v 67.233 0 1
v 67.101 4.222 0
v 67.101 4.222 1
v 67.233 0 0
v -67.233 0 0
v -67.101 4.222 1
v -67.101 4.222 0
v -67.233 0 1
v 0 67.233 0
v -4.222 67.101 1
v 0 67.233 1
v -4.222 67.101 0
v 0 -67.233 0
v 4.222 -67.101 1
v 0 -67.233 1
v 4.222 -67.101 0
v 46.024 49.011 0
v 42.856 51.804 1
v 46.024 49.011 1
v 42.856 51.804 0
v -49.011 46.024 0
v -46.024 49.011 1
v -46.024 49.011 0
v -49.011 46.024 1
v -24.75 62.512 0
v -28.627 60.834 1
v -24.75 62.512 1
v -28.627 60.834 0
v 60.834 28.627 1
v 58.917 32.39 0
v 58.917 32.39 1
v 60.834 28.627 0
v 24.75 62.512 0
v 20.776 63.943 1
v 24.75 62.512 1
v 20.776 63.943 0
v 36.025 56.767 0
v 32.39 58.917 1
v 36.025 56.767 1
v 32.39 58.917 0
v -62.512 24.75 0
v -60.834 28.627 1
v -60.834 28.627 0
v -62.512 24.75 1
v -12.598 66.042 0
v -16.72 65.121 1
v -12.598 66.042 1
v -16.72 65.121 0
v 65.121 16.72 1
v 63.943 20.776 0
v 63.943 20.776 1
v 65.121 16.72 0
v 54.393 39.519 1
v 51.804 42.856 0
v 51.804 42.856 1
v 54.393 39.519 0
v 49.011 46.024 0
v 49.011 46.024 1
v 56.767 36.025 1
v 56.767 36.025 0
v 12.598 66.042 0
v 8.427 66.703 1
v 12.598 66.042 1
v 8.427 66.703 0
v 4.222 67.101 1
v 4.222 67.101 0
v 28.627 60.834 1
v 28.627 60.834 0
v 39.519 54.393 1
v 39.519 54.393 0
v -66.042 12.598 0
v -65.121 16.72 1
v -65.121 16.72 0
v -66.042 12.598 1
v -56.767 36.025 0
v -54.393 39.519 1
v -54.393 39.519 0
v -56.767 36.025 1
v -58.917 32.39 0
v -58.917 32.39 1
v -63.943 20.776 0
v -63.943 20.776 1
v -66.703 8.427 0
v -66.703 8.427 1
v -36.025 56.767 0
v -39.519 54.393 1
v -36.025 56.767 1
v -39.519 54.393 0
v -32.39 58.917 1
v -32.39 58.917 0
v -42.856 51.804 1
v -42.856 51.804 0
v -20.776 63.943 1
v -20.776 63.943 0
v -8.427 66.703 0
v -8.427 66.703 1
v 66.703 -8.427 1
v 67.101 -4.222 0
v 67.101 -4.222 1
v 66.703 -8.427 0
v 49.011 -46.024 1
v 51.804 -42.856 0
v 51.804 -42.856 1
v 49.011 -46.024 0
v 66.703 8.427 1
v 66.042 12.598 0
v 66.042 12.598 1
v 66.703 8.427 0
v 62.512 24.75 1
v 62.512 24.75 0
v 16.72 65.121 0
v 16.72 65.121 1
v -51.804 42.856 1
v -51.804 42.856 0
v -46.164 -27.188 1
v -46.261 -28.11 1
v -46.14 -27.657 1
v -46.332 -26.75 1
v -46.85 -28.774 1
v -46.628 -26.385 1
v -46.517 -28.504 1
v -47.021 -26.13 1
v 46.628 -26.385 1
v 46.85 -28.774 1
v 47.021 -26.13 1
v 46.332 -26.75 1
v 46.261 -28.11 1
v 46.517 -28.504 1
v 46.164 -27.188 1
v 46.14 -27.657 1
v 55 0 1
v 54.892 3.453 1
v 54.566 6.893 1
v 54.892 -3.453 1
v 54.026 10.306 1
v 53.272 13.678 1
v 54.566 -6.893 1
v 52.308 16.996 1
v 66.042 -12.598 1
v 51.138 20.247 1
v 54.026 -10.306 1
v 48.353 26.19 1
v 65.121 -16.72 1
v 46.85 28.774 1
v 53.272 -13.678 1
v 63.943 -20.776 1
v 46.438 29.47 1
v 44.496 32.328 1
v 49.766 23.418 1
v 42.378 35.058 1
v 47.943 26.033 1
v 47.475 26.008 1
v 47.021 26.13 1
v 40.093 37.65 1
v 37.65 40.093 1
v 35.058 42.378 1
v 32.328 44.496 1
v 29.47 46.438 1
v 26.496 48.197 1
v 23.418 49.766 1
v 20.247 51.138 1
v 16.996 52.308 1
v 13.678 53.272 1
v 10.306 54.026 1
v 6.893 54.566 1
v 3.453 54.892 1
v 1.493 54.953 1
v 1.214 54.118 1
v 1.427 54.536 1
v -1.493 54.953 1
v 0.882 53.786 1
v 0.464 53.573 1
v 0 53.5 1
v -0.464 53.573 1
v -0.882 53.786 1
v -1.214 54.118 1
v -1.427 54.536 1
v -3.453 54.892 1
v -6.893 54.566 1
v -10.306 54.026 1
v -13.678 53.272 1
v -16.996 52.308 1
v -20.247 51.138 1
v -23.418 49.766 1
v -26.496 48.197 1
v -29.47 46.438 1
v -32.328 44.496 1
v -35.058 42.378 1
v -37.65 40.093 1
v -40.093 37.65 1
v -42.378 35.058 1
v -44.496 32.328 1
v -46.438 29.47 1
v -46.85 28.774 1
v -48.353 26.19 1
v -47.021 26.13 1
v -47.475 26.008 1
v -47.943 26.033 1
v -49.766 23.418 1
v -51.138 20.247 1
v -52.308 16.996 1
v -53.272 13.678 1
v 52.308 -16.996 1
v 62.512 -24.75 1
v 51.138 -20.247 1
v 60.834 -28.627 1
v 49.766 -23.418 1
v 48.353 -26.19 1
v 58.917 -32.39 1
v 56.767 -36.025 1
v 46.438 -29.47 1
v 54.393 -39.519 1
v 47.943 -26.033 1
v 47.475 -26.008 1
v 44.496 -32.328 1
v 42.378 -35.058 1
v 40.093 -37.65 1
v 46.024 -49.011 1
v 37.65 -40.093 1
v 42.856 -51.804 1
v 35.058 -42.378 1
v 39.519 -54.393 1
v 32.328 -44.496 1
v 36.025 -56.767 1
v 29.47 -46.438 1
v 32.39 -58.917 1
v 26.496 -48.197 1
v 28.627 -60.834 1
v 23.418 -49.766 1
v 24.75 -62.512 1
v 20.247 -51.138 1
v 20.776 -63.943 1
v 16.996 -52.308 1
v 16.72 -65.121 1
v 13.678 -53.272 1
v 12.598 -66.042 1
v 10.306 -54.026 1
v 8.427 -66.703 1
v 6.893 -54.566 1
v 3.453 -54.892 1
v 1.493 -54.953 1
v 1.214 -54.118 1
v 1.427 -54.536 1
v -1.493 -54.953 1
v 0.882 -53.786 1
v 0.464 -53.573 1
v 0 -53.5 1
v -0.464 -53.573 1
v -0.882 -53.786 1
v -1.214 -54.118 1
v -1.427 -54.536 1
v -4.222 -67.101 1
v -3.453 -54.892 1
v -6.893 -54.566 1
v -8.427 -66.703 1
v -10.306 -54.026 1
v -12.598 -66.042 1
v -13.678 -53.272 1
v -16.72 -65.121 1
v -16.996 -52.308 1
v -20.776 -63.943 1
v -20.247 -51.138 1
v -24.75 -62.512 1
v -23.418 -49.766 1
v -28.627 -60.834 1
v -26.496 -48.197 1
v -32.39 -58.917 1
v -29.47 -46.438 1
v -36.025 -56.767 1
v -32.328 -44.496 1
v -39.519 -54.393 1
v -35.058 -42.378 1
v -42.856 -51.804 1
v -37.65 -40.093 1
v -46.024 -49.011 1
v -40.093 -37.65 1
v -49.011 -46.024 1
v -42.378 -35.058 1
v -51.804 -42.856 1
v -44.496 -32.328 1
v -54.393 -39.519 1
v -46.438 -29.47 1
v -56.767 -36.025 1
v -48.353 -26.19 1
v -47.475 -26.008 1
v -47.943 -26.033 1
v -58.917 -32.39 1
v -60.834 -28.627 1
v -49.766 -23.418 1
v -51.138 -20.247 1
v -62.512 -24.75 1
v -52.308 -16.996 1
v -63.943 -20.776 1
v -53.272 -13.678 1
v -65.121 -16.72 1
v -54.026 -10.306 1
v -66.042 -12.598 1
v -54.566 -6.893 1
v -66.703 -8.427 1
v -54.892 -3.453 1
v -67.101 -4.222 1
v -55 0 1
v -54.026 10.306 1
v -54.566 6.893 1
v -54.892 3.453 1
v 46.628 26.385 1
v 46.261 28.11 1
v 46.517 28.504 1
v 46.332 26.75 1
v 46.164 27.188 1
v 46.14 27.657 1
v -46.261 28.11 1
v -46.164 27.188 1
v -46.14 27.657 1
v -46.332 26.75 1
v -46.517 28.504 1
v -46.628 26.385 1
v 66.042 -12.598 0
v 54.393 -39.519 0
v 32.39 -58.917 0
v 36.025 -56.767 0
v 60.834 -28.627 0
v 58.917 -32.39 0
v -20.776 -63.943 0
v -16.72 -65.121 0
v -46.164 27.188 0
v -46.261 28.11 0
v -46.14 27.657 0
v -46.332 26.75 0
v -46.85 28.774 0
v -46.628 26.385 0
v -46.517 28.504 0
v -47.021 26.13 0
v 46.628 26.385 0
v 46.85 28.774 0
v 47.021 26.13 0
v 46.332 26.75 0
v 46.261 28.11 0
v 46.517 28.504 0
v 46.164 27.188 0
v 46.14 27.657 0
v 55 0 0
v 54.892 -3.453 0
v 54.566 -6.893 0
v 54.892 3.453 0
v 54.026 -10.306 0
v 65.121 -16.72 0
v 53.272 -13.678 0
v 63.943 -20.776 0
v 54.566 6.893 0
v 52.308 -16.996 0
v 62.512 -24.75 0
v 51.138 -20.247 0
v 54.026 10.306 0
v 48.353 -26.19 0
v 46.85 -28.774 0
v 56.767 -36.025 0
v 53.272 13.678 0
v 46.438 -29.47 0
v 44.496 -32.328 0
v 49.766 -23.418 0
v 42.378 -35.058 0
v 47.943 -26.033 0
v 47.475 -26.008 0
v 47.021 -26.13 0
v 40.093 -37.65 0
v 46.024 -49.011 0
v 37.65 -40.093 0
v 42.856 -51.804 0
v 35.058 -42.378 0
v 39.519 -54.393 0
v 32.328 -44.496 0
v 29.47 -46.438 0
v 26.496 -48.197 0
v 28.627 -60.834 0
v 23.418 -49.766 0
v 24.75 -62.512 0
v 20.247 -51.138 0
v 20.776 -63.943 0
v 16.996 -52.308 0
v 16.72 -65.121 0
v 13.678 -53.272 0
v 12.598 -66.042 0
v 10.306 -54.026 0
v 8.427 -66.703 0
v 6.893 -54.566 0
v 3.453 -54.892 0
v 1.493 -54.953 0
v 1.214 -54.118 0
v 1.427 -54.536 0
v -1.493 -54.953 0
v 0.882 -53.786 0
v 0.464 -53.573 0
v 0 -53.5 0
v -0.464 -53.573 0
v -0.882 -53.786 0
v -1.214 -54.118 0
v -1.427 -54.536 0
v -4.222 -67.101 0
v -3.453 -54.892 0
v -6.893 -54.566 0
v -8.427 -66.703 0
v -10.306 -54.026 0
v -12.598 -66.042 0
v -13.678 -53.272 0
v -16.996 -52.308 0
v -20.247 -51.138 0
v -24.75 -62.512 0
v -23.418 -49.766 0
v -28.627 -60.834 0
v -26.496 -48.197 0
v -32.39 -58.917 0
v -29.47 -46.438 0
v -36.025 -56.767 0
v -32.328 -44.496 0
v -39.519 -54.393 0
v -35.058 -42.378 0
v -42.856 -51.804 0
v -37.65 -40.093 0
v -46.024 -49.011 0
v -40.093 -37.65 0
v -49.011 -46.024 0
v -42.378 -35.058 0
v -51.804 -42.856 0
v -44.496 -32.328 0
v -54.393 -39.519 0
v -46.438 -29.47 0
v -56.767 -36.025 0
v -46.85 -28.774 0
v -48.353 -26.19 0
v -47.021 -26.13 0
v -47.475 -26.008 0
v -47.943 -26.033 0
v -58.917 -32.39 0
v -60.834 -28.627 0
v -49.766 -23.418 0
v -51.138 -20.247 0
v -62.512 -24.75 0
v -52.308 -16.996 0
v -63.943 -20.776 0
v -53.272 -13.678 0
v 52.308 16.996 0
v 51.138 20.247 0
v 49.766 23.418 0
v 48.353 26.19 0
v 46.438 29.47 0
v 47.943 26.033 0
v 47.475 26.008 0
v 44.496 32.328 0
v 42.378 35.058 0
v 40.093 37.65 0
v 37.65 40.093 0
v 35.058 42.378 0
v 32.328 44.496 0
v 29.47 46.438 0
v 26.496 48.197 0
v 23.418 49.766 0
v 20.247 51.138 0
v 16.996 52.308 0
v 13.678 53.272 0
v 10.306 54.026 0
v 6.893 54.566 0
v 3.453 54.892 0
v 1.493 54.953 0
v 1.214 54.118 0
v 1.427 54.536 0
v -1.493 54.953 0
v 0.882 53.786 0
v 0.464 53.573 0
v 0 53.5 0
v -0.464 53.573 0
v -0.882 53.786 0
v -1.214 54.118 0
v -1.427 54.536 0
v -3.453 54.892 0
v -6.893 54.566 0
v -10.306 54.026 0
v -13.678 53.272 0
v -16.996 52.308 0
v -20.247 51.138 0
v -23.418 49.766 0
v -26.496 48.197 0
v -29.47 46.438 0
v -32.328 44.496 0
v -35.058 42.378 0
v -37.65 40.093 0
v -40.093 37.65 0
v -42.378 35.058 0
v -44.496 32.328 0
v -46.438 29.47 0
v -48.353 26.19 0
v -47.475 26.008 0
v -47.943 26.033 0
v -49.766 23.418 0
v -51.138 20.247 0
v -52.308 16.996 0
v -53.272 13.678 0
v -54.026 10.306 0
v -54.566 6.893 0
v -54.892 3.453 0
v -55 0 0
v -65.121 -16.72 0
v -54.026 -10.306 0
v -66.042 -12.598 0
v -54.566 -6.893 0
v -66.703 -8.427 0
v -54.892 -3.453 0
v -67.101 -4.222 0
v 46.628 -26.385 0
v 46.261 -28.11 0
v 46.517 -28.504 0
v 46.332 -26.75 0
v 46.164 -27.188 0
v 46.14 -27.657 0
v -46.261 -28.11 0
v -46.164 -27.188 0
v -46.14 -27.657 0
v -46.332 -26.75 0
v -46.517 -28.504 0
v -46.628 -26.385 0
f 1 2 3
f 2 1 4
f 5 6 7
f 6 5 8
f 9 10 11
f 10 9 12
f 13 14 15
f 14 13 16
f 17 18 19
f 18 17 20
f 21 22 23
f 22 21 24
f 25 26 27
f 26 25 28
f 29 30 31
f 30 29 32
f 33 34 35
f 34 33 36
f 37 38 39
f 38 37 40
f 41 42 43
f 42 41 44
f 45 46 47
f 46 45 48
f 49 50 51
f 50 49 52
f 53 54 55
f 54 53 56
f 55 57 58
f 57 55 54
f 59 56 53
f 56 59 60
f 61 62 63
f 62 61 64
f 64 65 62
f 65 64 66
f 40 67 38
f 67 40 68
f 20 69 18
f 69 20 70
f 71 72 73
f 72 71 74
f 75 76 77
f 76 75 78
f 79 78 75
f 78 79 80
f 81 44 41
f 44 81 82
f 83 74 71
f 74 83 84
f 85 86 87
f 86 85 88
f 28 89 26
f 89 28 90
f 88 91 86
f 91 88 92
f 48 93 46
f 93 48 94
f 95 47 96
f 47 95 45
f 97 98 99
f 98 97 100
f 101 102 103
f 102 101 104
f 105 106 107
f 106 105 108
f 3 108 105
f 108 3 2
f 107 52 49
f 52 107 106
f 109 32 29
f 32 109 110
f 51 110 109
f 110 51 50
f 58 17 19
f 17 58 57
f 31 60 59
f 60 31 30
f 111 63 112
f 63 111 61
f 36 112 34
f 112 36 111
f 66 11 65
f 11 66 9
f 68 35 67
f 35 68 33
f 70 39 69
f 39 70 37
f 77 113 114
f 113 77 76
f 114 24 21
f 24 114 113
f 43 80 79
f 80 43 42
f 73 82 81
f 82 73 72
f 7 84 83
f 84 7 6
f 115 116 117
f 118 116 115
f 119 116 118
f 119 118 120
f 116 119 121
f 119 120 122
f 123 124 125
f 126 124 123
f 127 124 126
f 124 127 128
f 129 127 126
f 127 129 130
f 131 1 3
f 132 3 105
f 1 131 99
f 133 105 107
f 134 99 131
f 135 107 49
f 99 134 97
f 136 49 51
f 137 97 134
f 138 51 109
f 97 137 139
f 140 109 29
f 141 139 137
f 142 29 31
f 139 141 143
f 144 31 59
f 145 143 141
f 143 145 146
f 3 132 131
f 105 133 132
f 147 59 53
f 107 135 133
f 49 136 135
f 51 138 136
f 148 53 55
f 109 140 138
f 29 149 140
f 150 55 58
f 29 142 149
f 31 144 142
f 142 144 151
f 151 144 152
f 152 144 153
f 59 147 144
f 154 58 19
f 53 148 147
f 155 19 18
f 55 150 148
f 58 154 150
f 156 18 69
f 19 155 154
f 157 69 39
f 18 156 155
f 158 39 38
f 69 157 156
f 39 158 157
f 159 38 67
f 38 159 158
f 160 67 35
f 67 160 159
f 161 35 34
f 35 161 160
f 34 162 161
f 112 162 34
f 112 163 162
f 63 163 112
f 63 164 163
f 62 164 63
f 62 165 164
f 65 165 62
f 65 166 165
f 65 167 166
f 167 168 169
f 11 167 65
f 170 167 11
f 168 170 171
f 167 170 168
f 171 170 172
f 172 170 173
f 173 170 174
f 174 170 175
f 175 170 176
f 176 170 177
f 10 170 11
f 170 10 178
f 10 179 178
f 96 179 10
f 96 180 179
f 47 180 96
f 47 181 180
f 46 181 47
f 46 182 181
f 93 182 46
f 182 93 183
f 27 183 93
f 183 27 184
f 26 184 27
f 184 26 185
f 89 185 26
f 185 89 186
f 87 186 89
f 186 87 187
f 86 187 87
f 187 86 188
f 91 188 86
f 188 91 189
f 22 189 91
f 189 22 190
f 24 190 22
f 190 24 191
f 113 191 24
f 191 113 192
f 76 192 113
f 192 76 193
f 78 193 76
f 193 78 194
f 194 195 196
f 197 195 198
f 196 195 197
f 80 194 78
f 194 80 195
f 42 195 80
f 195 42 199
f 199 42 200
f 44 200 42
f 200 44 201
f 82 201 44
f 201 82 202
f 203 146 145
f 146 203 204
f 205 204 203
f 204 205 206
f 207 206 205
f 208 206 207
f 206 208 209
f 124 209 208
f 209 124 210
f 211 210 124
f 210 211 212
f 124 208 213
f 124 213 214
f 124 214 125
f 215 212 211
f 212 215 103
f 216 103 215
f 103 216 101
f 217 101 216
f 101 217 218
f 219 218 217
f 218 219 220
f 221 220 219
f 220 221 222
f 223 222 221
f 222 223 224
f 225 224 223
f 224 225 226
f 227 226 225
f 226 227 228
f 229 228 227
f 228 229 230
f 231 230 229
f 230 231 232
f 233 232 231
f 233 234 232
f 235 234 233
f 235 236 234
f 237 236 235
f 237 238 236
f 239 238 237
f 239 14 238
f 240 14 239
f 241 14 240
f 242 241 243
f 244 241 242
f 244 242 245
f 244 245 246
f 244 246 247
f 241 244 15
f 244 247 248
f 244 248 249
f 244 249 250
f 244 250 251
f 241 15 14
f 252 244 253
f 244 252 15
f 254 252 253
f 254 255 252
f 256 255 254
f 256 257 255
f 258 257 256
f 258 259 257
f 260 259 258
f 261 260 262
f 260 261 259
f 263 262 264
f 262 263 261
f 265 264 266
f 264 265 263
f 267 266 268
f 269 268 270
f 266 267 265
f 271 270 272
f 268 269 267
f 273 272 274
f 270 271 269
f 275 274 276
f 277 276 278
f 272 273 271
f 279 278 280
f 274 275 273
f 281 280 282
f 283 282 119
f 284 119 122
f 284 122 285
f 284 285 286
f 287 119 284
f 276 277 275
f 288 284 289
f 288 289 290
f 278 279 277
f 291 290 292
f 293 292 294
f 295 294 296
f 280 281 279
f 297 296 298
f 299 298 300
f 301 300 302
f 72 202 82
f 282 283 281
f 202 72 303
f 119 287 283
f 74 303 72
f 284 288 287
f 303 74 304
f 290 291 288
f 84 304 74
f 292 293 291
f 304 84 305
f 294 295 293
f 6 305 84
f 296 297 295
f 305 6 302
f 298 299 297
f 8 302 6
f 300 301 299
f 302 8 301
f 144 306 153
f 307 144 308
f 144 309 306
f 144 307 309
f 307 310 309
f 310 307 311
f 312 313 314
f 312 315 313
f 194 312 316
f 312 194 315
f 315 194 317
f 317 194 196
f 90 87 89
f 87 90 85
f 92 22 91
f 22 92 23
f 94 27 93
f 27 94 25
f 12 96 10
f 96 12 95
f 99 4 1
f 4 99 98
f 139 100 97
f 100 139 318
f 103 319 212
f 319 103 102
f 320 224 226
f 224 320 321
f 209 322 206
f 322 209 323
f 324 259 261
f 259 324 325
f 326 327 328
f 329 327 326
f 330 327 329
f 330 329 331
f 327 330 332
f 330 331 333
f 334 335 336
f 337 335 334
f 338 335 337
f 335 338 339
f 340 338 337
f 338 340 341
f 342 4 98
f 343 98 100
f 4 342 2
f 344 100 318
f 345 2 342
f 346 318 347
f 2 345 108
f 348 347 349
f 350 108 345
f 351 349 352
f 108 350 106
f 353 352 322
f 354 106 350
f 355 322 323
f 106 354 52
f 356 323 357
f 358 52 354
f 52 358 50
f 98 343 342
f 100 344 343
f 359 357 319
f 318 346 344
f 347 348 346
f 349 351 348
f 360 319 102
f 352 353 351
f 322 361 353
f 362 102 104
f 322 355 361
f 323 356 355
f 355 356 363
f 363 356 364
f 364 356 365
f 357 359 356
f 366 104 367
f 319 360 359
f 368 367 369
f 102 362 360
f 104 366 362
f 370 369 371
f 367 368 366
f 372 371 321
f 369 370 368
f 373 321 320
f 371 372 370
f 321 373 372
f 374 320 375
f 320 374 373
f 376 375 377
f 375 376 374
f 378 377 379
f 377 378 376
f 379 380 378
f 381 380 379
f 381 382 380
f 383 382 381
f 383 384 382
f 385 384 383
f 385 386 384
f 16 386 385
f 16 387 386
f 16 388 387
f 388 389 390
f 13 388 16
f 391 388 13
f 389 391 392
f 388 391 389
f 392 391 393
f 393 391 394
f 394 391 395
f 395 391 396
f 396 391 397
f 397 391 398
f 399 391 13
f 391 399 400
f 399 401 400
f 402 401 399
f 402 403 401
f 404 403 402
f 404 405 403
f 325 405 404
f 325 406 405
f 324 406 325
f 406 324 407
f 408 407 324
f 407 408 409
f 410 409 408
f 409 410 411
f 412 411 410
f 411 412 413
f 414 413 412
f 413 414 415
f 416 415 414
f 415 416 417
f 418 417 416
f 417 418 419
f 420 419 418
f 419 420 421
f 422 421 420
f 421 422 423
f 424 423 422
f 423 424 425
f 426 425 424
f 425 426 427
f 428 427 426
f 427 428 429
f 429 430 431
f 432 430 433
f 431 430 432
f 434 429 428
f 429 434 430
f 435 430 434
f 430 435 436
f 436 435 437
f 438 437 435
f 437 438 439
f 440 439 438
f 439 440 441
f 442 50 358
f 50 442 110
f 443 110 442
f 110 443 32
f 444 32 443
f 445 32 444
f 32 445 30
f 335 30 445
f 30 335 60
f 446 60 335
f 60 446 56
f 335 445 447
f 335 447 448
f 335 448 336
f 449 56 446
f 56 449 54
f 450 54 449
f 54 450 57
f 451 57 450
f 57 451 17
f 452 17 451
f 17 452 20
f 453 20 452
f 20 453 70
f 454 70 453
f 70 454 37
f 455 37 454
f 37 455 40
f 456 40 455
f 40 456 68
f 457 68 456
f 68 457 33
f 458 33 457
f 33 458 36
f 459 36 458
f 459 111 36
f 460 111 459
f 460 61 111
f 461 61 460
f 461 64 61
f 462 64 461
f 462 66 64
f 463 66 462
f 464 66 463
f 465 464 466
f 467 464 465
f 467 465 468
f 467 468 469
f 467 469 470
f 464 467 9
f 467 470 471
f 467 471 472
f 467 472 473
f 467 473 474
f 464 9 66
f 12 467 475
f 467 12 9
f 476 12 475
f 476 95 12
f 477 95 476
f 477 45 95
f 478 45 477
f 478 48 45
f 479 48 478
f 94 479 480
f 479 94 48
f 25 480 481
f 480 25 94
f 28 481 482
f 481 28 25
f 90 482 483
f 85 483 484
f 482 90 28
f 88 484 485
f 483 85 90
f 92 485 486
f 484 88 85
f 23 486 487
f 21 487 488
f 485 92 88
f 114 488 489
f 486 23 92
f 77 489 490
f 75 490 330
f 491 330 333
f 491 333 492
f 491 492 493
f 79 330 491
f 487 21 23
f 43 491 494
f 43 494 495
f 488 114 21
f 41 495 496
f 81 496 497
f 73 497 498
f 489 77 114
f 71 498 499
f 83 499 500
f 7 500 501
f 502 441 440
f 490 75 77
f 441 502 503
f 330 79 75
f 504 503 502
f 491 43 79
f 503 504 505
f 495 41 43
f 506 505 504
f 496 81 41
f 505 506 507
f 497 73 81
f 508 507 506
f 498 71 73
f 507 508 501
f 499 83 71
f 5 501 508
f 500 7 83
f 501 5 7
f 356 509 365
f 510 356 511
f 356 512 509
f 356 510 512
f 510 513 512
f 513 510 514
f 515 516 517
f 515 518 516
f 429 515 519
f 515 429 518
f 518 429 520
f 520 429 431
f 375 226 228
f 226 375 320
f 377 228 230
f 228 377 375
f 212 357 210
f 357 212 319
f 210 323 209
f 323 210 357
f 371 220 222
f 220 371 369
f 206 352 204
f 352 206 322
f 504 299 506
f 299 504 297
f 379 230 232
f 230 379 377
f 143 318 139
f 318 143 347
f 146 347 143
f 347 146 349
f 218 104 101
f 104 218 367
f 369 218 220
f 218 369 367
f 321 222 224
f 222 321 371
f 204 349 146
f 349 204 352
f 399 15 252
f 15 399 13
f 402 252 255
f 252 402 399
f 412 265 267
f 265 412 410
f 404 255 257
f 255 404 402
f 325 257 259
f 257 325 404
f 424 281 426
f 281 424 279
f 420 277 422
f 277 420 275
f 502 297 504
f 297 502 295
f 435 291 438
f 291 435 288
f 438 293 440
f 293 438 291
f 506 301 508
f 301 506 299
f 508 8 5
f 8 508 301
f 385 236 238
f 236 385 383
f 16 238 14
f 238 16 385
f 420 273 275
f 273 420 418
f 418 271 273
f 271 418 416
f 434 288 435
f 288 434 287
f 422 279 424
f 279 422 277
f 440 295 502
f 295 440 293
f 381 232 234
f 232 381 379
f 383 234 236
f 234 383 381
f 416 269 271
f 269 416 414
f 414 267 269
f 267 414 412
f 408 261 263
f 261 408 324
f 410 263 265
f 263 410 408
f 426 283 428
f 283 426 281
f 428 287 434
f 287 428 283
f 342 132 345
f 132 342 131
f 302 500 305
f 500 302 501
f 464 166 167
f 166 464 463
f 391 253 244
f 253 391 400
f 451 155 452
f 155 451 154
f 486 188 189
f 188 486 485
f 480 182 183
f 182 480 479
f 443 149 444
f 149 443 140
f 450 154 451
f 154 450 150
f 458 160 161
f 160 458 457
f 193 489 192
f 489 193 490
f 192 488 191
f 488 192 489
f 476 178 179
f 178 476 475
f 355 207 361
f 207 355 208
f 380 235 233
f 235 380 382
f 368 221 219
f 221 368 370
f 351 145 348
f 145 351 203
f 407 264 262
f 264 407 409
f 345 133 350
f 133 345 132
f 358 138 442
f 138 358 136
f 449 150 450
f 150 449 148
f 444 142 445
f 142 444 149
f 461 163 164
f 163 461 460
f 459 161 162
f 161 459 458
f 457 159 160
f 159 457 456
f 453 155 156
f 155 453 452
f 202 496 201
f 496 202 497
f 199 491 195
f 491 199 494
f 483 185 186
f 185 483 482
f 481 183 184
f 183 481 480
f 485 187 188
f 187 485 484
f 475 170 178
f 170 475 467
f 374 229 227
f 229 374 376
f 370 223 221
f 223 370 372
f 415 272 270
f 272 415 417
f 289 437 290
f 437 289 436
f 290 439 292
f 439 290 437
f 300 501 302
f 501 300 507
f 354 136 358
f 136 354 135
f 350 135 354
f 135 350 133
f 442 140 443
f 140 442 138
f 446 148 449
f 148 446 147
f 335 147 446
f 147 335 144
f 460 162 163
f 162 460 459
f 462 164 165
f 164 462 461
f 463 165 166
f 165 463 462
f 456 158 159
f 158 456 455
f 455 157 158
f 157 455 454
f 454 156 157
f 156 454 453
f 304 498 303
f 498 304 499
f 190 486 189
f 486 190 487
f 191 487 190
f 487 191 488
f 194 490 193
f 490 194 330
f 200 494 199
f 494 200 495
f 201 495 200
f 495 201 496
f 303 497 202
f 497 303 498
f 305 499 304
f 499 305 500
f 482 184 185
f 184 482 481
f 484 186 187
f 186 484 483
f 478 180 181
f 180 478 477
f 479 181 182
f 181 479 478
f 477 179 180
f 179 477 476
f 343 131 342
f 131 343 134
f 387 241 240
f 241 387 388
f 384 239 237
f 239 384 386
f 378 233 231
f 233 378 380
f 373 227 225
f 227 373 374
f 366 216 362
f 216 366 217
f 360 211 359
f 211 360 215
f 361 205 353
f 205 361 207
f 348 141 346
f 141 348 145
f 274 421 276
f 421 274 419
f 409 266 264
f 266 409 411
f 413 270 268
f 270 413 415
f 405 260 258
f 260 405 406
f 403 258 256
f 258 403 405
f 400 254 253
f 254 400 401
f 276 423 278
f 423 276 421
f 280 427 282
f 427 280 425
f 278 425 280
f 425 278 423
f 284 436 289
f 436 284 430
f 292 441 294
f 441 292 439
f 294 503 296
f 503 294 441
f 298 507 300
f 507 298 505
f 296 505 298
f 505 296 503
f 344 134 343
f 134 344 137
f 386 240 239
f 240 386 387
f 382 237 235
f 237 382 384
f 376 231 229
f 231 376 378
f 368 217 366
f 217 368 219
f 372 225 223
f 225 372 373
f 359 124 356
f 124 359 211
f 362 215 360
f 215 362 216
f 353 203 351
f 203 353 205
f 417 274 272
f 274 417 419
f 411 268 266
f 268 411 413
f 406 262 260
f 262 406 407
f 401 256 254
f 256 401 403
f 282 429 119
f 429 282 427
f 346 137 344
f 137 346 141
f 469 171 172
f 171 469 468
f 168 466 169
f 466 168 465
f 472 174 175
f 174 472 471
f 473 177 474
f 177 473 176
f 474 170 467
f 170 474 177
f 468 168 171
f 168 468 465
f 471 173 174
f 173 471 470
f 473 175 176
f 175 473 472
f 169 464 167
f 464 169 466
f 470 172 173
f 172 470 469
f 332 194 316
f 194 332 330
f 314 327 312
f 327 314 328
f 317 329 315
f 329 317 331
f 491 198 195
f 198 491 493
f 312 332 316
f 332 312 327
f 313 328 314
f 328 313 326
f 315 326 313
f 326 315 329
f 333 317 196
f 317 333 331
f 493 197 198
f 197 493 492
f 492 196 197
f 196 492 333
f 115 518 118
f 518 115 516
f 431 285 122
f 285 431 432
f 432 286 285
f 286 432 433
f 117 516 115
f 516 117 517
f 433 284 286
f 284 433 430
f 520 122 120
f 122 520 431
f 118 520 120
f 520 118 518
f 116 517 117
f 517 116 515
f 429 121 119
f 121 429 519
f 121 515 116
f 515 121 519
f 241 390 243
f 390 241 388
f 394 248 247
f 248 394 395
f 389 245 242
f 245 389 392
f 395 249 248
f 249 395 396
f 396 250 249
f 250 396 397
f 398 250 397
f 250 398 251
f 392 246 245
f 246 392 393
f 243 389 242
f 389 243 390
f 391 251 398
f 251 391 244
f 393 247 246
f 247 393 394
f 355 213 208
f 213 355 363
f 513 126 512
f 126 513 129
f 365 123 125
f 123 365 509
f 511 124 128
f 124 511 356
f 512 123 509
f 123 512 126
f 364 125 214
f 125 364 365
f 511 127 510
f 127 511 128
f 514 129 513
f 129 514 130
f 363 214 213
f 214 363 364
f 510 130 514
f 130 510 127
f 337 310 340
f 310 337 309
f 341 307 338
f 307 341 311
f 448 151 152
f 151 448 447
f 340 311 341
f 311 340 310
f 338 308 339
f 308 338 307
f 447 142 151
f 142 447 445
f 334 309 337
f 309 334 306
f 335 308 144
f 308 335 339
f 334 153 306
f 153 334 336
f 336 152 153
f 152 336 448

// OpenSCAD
// file: sweep.scad
// sweep.scad
//
// This code is copied from
// https://github.com/openscad/list-comprehension-demos
// and
// https://github.com/openscad/scad-utils
// to make hangprinter repo self-contained
// It was included in order to make the worm drive parametric
// In future OpenSCAD (or other script CAD programs)
// worm drives should be will be more easily constructed without
// this user space defined sweep operation.
// See OpenSCAD discussion at:
// https://github.com/openscad/openscad/issues/114

// Look into files
// lists.scad
// X transformations.scad
// linalg.scad
// se3.scad
// so3.scad


// Include modules and fcts:

/// linalg.scad
function vec3(p) = len(p) < 3 ? concat(p,0) : p;
function vec4(p) = let (v3=vec3(p)) len(v3) < 4 ? concat(v3,1) : v3;
function take3(v) = [v[0],v[1],v[2]];
function tail3(v) = [v[3],v[4],v[5]];
function construct_Rt(R,t) = [concat(R[0],t[0]),concat(R[1],t[1]),concat(R[2],t[2]),[0,0,0,1]];

/// so3.scad

function se3_exp_2(t,w) = se3_exp_2_0(t,w,w*w);
function se3_exp_2_0(t,w,theta_sq) =
se3_exp_23(
	so3_exp_2(theta_sq),
	C = (1.0 - theta_sq/20) / 6,
	t=t,w=w);

// Taylor series expansions close to 0
function so3_exp_1(theta_sq) = [
	1 - 1/6*theta_sq,
	0.5
];

function rodrigues_so3_exp(w, A, B) = [
  [1.0 - B*(w[1]*w[1] + w[2]*w[2]), B*(w[0]*w[1]) - A*w[2],          B*(w[0]*w[2]) + A*w[1]],
  [B*(w[0]*w[1]) + A*w[2],          1.0 - B*(w[0]*w[0] + w[2]*w[2]), B*(w[1]*w[2]) - A*w[0]],
  [B*(w[0]*w[2]) - A*w[1],          B*(w[1]*w[2]) + A*w[0],          1.0 - B*(w[0]*w[0] + w[1]*w[1])]
];

function so3_exp_3_0(theta_deg, inv_theta) = [
	sin(theta_deg) * inv_theta,
	(1 - cos(theta_deg)) * (inv_theta * inv_theta)
];

/// se3.scad
function combine_se3_exp(w, ABt) = construct_Rt(rodrigues_so3_exp(w, ABt[0], ABt[1]), ABt[2]);
function se3_exp_1(t,w) = concat(
	so3_exp_1(w*w),
	[t + 0.5 * cross(w,t)]
);

function se3_exp_3(t,w) = se3_exp_3_0(t,w,sqrt(w*w)*180/PI,1/sqrt(w*w));

function se3_exp_23(AB,C,t,w) =
[AB[0], AB[1], t + AB[1] * cross(w,t) + C * cross(w,cross(w,t)) ];

function se3_exp_3_0(t,w,theta_deg,inv_theta) =
se3_exp_23(
	so3_exp_3_0(theta_deg = theta_deg, inv_theta = inv_theta),
	C = (1 - sin(theta_deg) * inv_theta) * (inv_theta * inv_theta),
t=t,w=w);

function se3_exp(mu) = se3_exp_0(t=take3(mu),w=tail3(mu)/180*PI);

function se3_exp_0(t,w) =
combine_se3_exp(w,
// Evaluate by Taylor expansion when near 0
	w*w < 1e-8
	? se3_exp_1(t,w)
	: w*w < 1e-6
	  ? se3_exp_2(t,w)
	  : se3_exp_3(t,w)
);


/// lists.scad
/*!
  Flattens a list one level:

  flatten([[0,1],[2,3]]) => [0,1,2,3]
*/
function flatten(list) = [ for (i = list, v = i) v ];
/*!
  Extracts a subarray from index begin (inclusive) to end (exclusive)

  subarray([1,2,3,4], 1, 2) => [2,3]
*/
function subarray(list,begin=0,end=-1) = [
    let(end = end < 0 ? len(list) : end)
      for (i = [begin : 1 : end-1])
        list[i]
];

/// transformations.scad
//********* Create modifying matrices ***************//
/*!
  Creates a rotation matrix

  xyz = euler angles = rz * ry * rx
  axis = rotation_axis * rotation_angle
*/
function rotation(xyz=undef, axis=undef) =
	xyz != undef && axis != undef ? undef :
	xyz == undef  ? se3_exp([0,0,0,axis[0],axis[1],axis[2]]) :
	len(xyz) == undef ? rotation(axis=[0,0,xyz]) :
	(len(xyz) >= 3 ? rotation(axis=[0,0,xyz[2]]) : identity4()) *
	(len(xyz) >= 2 ? rotation(axis=[0,xyz[1],0]) : identity4()) *
(len(xyz) >= 1 ? rotation(axis=[xyz[0],0,0]) : identity4());

/*!
  Creates a scaling matrix
*/
function scaling(v) = [
	[v[0],0,0,0],
	[0,v[1],0,0],
	[0,0,v[2],0],
	[0,0,0,1],
];

/*!
  Creates a translation matrix
*/
function translation(v) = [
	[1,0,0,v[0]],
	[0,1,0,v[1]],
	[0,0,1,v[2]],
	[0,0,0,1],
];


function project(x) = subarray(x,end=len(x)-1) / x[len(x)-1];

function transform(m, list) = [for (p=list) project(m * vec4(p))];

function to_3d(list) = [ for(v = list) vec3(v) ];

module sweep(shape, path_transforms, closed=false) {

    pathlen = len(path_transforms);
    segments = pathlen + (closed ? 0 : -1);
    shape3d = to_3d(shape);

    function sweep_points() =
      flatten([for (i=[0:pathlen-1])
        transform(path_transforms[i], shape3d)]);

    function loop_faces() = [let (facets=len(shape3d))
        for(s=[0:segments-1], i=[0:facets-1])
          [(s%pathlen) * facets + i,
           (s%pathlen) * facets + (i + 1) % facets,
           ((s + 1) % pathlen) * facets + (i + 1) % facets,
           ((s + 1) % pathlen) * facets + i]];

    bottom_cap = closed ? [] : [[for (i=[len(shape3d)-1:-1:0]) i]];
    top_cap = closed ? [] : [
      [for (i=[0:len(shape3d)-1])
        i+len(shape3d)*(pathlen-1)]];
    polyhedron(points = sweep_points(),
               faces  = concat(loop_faces(),
                               bottom_cap,
                               top_cap),
               convexity=5);
}
// file: gear_parameters.scad
Circular_pitch = 262;

Motor_teeth = 10;
Gear_height = 23.4;
Motor_pitch                      = (Motor_teeth*Circular_pitch/360);
Motor_pitch_diametrial           = Motor_teeth/(2*Motor_pitch);
Motor_outer_radius               = Motor_pitch + 1/Motor_pitch_diametrial;

Spool_teeth = 80;
Spool_r = 25;
Spool_height = 8;
Spool_pitch                      = (Spool_teeth*Circular_pitch/360);
Spool_pitch_diametrial           = Spool_teeth/(2*Spool_pitch);
Spool_outer_radius               = Spool_pitch + 1/Spool_pitch_diametrial;

Torx_depth = 5;
// file: gears.scad
include <parameters.scad>
//////////// Functions /////////////
function mirror_point(coord) =
[
	coord[0],
	-coord[1]
];

function rotate_point(rotate, coord) =
[
	cos(rotate)*coord[0] + sin(rotate)*coord[1],
	cos(rotate)*coord[1] - sin(rotate)*coord[0]
];

function involute(base_radius, involute_angle) =
[
	base_radius*(cos(involute_angle) + involute_angle*PI/180*sin(involute_angle)),
	base_radius*(sin(involute_angle) - involute_angle*PI/180*cos(involute_angle)),
];

function rotated_involute(rotate, base_radius, involute_angle) =
[
	cos(rotate)*involute(base_radius, involute_angle)[0] + sin(rotate)*involute(base_radius, involute_angle)[1],
	cos(rotate)*involute(base_radius, involute_angle)[1] - sin(rotate)*involute(base_radius, involute_angle)[0]
];

function involute_intersect_angle(base_radius, radius) = sqrt(pow(radius/base_radius, 2) - 1)*180/PI;


//////////// Modules /////////////
module involute_gear_tooth(pitch_radius,
	                         root_radius,
	                         base_radius,
	                         outer_radius,
	                         half_thick_angle,
	                         involute_facets){
	min_radius   = max(base_radius,root_radius);
	pitch_point  = involute(base_radius, involute_intersect_angle(base_radius, pitch_radius));
	pitch_angle  = atan2(pitch_point[1], pitch_point[0]);
	centre_angle = pitch_angle + half_thick_angle;
	start_angle = involute_intersect_angle(base_radius, min_radius);
	stop_angle = involute_intersect_angle(base_radius, outer_radius);
	res=(involute_facets!=0)?involute_facets:($fn==0)?5:$fn/4;
  for(i=[1:res]){
    polygon(points=[[0,0], rotate_point(centre_angle, involute(base_radius,start_angle+(stop_angle - start_angle)*(i-1)/res)),
                           rotate_point(centre_angle, involute(base_radius,start_angle+(stop_angle - start_angle)*i/res)),
                           mirror_point(rotate_point(centre_angle, involute(base_radius,start_angle+(stop_angle - start_angle)*i/res))),
                           mirror_point(rotate_point(centre_angle, involute(base_radius,start_angle+(stop_angle - start_angle)*(i-1)/res)))],
        paths=[[0,1,2,3,4,0]]);
  }
}

module gear_shape(number_of_teeth,
	                pitch_radius,
	                root_radius,
	                base_radius,
	                outer_radius,
	                half_thick_angle,
	                involute_facets){
	union(){
		rotate(half_thick_angle) circle($fn=number_of_teeth*2, r=root_radius);
		for(i = [1:number_of_teeth]){
			rotate([0,0,i*360/number_of_teeth]){
				involute_gear_tooth(pitch_radius     = pitch_radius,
					                  root_radius      = root_radius,
					                  base_radius      = base_radius,
					                  outer_radius     = outer_radius,
					                  half_thick_angle = half_thick_angle,
					                  involute_facets  = involute_facets);
			}
		}
	}
}

module gear(number_of_teeth = 15,
	          circular_pitch  = false,
            diametral_pitch = false,
	          pressure_angle  = 28,
	          clearance       = 0.2,
	          gear_thickness  = 5,
	          rim_thickness   = 8,
	          rim_width       = 5,
	          hub_thickness   = 10,
	          hub_diameter    = 15,
	          bore_diameter   = 5,
	          circles         = 0,
	          backlash        = 0,
	          twist           = 0,
	          involute_facets = 0){
	if(circular_pitch==false && diametral_pitch==false)
		echo("ERROR: gear module needs either a diametral_pitch or circular_pitch");

	// Convert diametrial pitch to our native circular pitch
	circular_pitch             = (circular_pitch!=false?circular_pitch:180/diametral_pitch);

	// Pitch diameter: Diameter of pitch circle.
	pitch_diameter             = number_of_teeth*circular_pitch/180;
	pitch_radius               = pitch_diameter/2;

	// Base Circle
	base_radius                = pitch_radius*cos(pressure_angle);

	// Diametrial pitch: Number of teeth per unit length.
	pitch_diametrial           = number_of_teeth/pitch_diameter;

	// Addendum: Radial distance from pitch circle to outside circle.
	addendum                   = 1/pitch_diametrial;

	//Outer Circle
	outer_radius               = pitch_radius + addendum;

	// Dedendum: Radial distance from pitch circle to root diameter
	dedendum                   = addendum + clearance;

	// Root diameter: Diameter of bottom of tooth spaces.
	root_radius                = pitch_radius - dedendum;
	backlash_angle             = backlash/pitch_radius*180/PI;
	half_thick_angle           = (360/number_of_teeth - backlash_angle)/4;

	// Variables controlling the rim.
	rim_radius                 = root_radius - rim_width;

	// Variables controlling the circular holes in the gear.
	circle_orbit_diameter      = hub_diameter/2 + rim_radius;
	circle_orbit_curcumference = PI*circle_orbit_diameter;

	// Limit the circle size to 90% of the gear face.
	circle_diameter            = min(0.70*circle_orbit_curcumference/circles,
			                             (rim_radius-hub_diameter/2)*0.9);

	difference(){
		union(){
			difference(){
				linear_extrude(height = rim_thickness, convexity = 10, twist = twist, slices=floor(gear_thickness/2))
				gear_shape(number_of_teeth,
					         pitch_radius     = pitch_radius,
					         root_radius      = root_radius,
					         base_radius      = base_radius,
					         outer_radius     = outer_radius,
					         half_thick_angle = half_thick_angle,
					         involute_facets  = involute_facets);
				if(gear_thickness < rim_thickness)
					translate([0,0,gear_thickness])
					  cylinder(r = rim_radius, h = rim_thickness-gear_thickness + 1);
			}
			if(gear_thickness > rim_thickness)
				cylinder(r = rim_radius, h = gear_thickness);
			if(hub_thickness > gear_thickness)
				translate([0,0,gear_thickness])
				cylinder(r = hub_diameter/2, h = hub_thickness - gear_thickness);
		}
		if(circles>0){
			for(i=[0:circles-1])
				rotate([0,0,i*360/circles])
				  translate([circle_orbit_diameter/2, 0, -1])
				    cylinder(r = circle_diameter/2, h = max(gear_thickness, rim_thickness) + 3);
		}
	}
}

module my_gear(teeth, height, circular_pitch){
  pitch = (teeth*circular_pitch/360);
	gear(number_of_teeth = teeth,
       // Increasing circular_pitch this makes gears larger
       // Should possibly be parameter in design_numbers.scad...
			 circular_pitch  = circular_pitch,
			 pressure_angle  = 30,
			 clearance       = 0.2,
			 gear_thickness  = height,
			 rim_thickness   = height,
			 rim_width       = 5,
			 hub_thickness   = height,
			 hub_diameter    = 15,
       twist = (180/3.14)*height*1/pitch);
}
//my_gear(40,10);
// file: gear_util.scad
include <parameters.scad>
include <gear_parameters.scad>
use <sweep.scad>
use <util.scad>

//decoration();
// Wallr is radius out to outermost edge of this decoration
// inr is the radius of those rounded corners
// dd is width of circle band to be formed inside of wallr
module decoration(height=10, wallr = 50, dd=10.2, lou=6.9, inr=9){
  d = 2;
  shpr = 2; // Radius of the bend that shape has
  trou = wallr+shpr-lou;
  stp = 6;
  start_ang = (180/PI)*(inr/wallr);
  start_ang2 = (180/PI)*(inr/(wallr-dd-inr));
  last_ang = 60;
  stop_ang = last_ang - start_ang;
  stop_ang2 = last_ang - start_ang2;

  mirror([0,1,0])
    half_decoration();
  half_decoration();
  module half_decoration(){
    step = 90/10;
    // Shape to drag around in order to make nice round insides of decoration
    function shp(l, h, r, d) = concat(
      [[0,-d], [l, -d], [l, 0]],
      [for(a=[step:step:90])
        [l, 0] + [0,r] + r*[cos(270-a), sin(270-a)]],
      [[l-r, h-r]],
      [for(a=[90+step:step:90+90])
        [l, h-2*r] + [0,r] + r*[cos(270-a), sin(270-a)]],
      [[l, h+d], [0,h+d]]);

    rotate([0,0,-last_ang/2])
    sweep(shp(lou, height, 2, d),
       concat(
        [for(i=[last_ang/2-0.1:(stop_ang - last_ang/2)/15:stop_ang])
         rotation([0,0,i])
         * translation([trou,0,0])
         * rotation([90,0,0])]
         ,
        [for(i=[stp:stp:90])
        rotation([0,0,stop_ang])
        * translation([trou,0,0])
        * rotation([90,0,0])
        * translation([+lou-inr+shpr,0,0])
        * rotation([0,i*1.1,0])
        * translation([-lou+inr-shpr,0,0])],
        [translation(dd*[-cos(last_ang), -sin(last_ang), 0])
        * rotation([0,0,stop_ang])
        * translation([trou,0,0])
        * rotation([90,0,0])
        * translation([+lou-inr+shpr,0,0])
        * rotation([0,90*1.1,0])
        * translation([-lou+inr-shpr,0,0])],
        [for(i=[stp:stp:90])
        translation(dd*[-cos(last_ang), -sin(last_ang), 0])
        * rotation([0,0,stop_ang])
        * translation([trou,0,0])
        * rotation([90,0,0])
        * translation([+lou-inr+shpr,0,0])
        * rotation([0,90*1.1 + i*0.9,0])
        * translation([-lou+inr-shpr,0,0])],
        [for(i=[start_ang2:((last_ang/2) - start_ang2)/10:last_ang/2+0.1])
        rotation([0,0,-i+start_ang])
        * translation(dd*[-cos(last_ang), -sin(last_ang), 0])
        * rotation([0,0,stop_ang])
        * translation([trou,0,0])
        * rotation([90,0,0])
        * translation([+lou-inr+shpr,0,0])
        * rotation([0,90*1.1 + 90*0.9,0])
        * translation([-lou+inr-shpr,0,0])]));
  }

  function circle_sector(max_ang, r0, r1, steps=100) =
    concat([for (a=[-max_ang/2:max_ang/steps-0.00001:max_ang/2])
              r0*[cos(a), sin(a)]],
           [[0,0,0]]);
  difference(){
    translate([0,0,-d])
      sweep(circle_sector(last_ang, wallr-0.15),
          [translation([0,0,0]),translation([0,0,height+2*d+2])]);
    for(i=[0,60,120])
      rotate([0,0,i+30])
        cube([2*wallr-0.1,8.9,2*(height+2*d+4)], center=true); // TODO: Eker tjockled parametrisera
    translate([0,0,-1])
      cylinder(r=wallr-dd-2*inr+8.5, h=height+2*d+3);

  }

}

module spool_decoration(){
  wallr_inner = Spool_r - 4;
  inr_inner = 5.2;
  dd_inner = wallr_inner - inr_inner - b608_outer_dia/2 - 6;
  lou_inner = 2.8;
  decoration(
      height=Spool_height+1+Gear_height,
      wallr = wallr_inner,
      inr = inr_inner,
      dd = dd_inner,
      lou = lou_inner);
}

//torx(remale=true);
module torx(h = Spool_height + 2, r = Spool_r, female=false){
  circs = 12;
  intersection(){
    if(female){
      cylinder(r=r+0.1, h=h, $fn=150);
    } else {
      cylinder(r=r, h=h, $fn=150);
    }
    for(i=[0:1:circs])
      rotate([0,0,i*360/circs]){
        translate([r-5,0,-1])
        cylinder(r=r/4.2, h=h+2, $fn=50);
      if(female){
        rotate([0,0,360/(2*circs)])
          translate([r-7,0,-1])
          cylinder(r2=1, r1=r/1.9, h=h+2, $fn=50);
        }
      }
  }
  cylinder(r=r-5,h=h);
}
// file: util.scad
include <parameters.scad>

//!rounded_cube([40,61,42], 8, center=true);
module rounded_cube(v, r, center=false){
  fn = 32;
  v = (v[0] == undef) ? [v, v, v] : v;
  obj_translate = center ?
    [-(v[0] / 2), -(v[1] / 2),	-(v[2] / 2)] : [0, 0, 0];
  d = 2*r;

  //!frame();
  module frame(){
    xy_corners = [[0, 0, 0], [v[0]-d, 0, 0], [v[0]-d, v[1]-d, 0], [0, v[1]-d, 0]];
    translate([r,r,r])
    for(i=[0:3]){
      l = i%2 == 0 ? v[0] - d : v[1] - d;
      translate(xy_corners[i]){
        rotate([0,0,90*i]){
          cylinder(r=r, h=v[2]-d, $fn = fn);
          for(j=[0,v[2]-d]){
            translate([0,0,j]){
              sphere(r, $fn = fn);
              rotate([0,90,0])
                rotate([0,0,0.5*360/fn])
                cylinder(r=r, h=l, $fn = fn);
            }
          }
        }
      }
    }
  }

  //!core();
  module core(){
    translate([r, r, 0]){
      cube([v[0] - d, v[1] - d, v[2]]);
    }
    translate([r, 0, r]){
      cube([v[0] - d, v[1], v[2] - d]);
    }
    translate([0, r, r]){
      cube([v[0], v[1] - d, v[2] - d]);
    }
  }

  translate(obj_translate){
    union(){
      core();
      frame();
    }
  }
}

//rounded_cube2([20,30,2], 2);
module rounded_cube2(v, r){
  $fs = 1;
  union(){
    translate([r,0,0])           cube([v[0]-2*r, v[1]    , v[2]]);
    translate([0,r,0])           cube([v[0]    , v[1]-2*r, v[2]]);
    translate([r,r,0])           cylinder(h=v[2], r=r);
    translate([v[0]-r,r,0])      cylinder(h=v[2], r=r);
    translate([v[0]-r,v[1]-r,0]) cylinder(h=v[2], r=r);
    translate([r,v[1]-r,0])      cylinder(h=v[2], r=r);
  }
}

module rounded_square(v, r){
  union(){
    translate([r,0])           square([v[0]-2*r, v[1]]);
    translate([0,r])           square([v[0], v[1]-2*r]);
    translate([r,r])           circle(r);
    translate([v[0]-r,r])      circle(r);
    translate([v[0]-r,v[1]-r]) circle(r);
    translate([r,v[1]-r])      circle(r);
  }
}


module beam(l, standing = false){
  v = standing ? [Beam_width, Beam_width, l] : [l, Beam_width, Beam_width];
  cube(v);
}

module fat_beam(l, standing = false){
  v = standing ? [Fat_beam_width, Fat_beam_width, l] : [l, Fat_beam_width, Fat_beam_width];
  cube(v);
}

//standing_ls_tri(10, 20);
module standing_ls_tri(l, h){
  difference(){
  cube([l,l,h]);
  translate([l,0,0])
    rotate([0,0,45])
    translate([0,0,-1])
    cube([l*sqrt(2),l*sqrt(2),h+2]);
  }
}

// Functions for use with sweep
function my_square(v) = [[-v[0]/2, -v[1]/2],
                         [ v[0]/2, -v[1]/2],
                         [ v[0]/2,  v[1]/2],
                         [-v[0]/2,  v[1]/2]];

function my_rounded_square(v, r, step=7.5) = [
  for (i=[0:step:360])
    i < 90 ?
    [r,r] - r*[cos(i), sin(i)] :
    i < 180 ?
    [v[0]-r,r] - r*[cos(i), sin(i)] :
    i < 270 ?
    [v[0]-r,v[1]-r] - r*[cos(i), sin(i)] :
    [r,v[1]-r] - r*[cos(i), sin(i)]];

function my_rounded_eqtri(l, r, step=3) = [
  for (i=[-30:step:360-30.01])
    (i < 120 - 30) ?
    [r*sqrt(3),r] - r*[cos(i), sin(i)] :
    (i < 240 - 30) ?
    [l-r*sqrt(3),r] - r*[cos(i), sin(i)] :
    [l/2,sqrt(3)*l/2-r*2] - r*[cos(i), sin(i)]];

module rounded_2corner(v, r){
  v = (v[0] == undef) ? [v, v] : v;
  square([v[0]-r,v[1]]);
  translate([0,r])
    square([v[0],v[1]-2*r]);
  translate([v[0]-r, r])
    circle(r=r,$fs = 1);
  translate([v[0]-r, v[1]-r])
    circle(r=r,$fs = 1);
}

module Nema17_screw_translate(corners){
  for (i=[0:90:90*corners - 1]){
    rotate([0,0,i+45]) translate([Nema17_screw_hole_width/2,0,0]) children();
  }
}

module Nema17_screw_holes(d, h, corners=4){
  Nema17_screw_translate(corners) cylinder(r=d/2,h=h);
}

module centered_u_groove_bearing(){
  translate([1.5,-32,0])
    import("U-groove_bearing.stl");
}

// Looks best with $fn = n*8
module round_end(v){
  v = (v[0] == undef) ? [v, v] : v;
  cube([v[0]-v[1]/2, v[1], v[2]]);
  translate([v[0]-v[1]/2, v[1]/2,0])
    cylinder(d=v[1], h=v[2]);
}
// file: parameters.scad
// Parameters shared between modules
Base_th = 2.8;
Beam_width = 15;
Wiggle = 0.25;
Fat_beam_width = Beam_width + Wiggle;
Beam_length = 400;
Wall_th = 2.5;
Min_beam_width = 12.5;
Max_beam_width = 17.5;
Zip_th = 2;
Zip_h = Zip_th + Max_beam_width - Min_beam_width;
Zip_w = 5.0;
Nema17_cube_width          = 42.43;
Nema17_screw_hole_width    = 43.74; // Opposite corner screws
Nema17_ring_diameter       = 22;
Nema17_cube_height         = 39.36;
Nema17_shaft_height        = 63.65;
Nema17_ring_height         = 2;
Nema17_shaft_radius        = 5/2;
b608_outer_dia = 22.2;
b608_width = 7.05;
Gap_between_sandwich_and_plate = 1.5 + Base_th; // 1.5 mm for wiggle
Motor_bracket_flerp_r = 6;
Motor_bracket_flerp = 14;
Motor_bracket_cw = Nema17_cube_width + 6;
Motor_bracket_att_ang = 50;
Mounting_screw_d = 4.5;
Mounting_screw_head_d = 14;
Spool_outer_wall_th = 4;

// Corner clamp parameters
Cc_l1 = (Fat_beam_width+2*Wall_th)*2*sqrt(3);
Cc_rad_b = 4;
Cc_action_point_from_mid = Cc_l1/sqrt(3)-2*Cc_rad_b-1.3;  // 1.3 chosen arbitrarily
Cc_plastic_length = sqrt(Cc_action_point_from_mid*Cc_action_point_from_mid
                       - (Cc_action_point_from_mid/2)*(Cc_action_point_from_mid/2));

// The distance between the two action points on the mover
Sidelength = Beam_length + 2*Cc_plastic_length;

/////// Layout parameters ////////////
Ext_sidelength = Sidelength+77;
Additional_added_plate_side_length = 10;
Yshift_top_plate = -25;

/////// Gear parameters ////////////
Circular_pitch = 262;
Motor_teeth = 10;
Gear_height = 21.4-3;
Motor_pitch                      = (Motor_teeth*Circular_pitch/360);
Motor_pitch_diametrial           = Motor_teeth/(2*Motor_pitch);
Motor_outer_radius               = Motor_pitch + 1/Motor_pitch_diametrial;
Spool_teeth = 100;
Spool_r = 55;
Spool_height = 11;  //standard was 8 (for a spool taking all lines at once, i.e. no separation disc)
Num_sep_holes= 1; // number of separation holes to be placed in the side of the spool. Serves as anchor point but also for separation the different lines only 1 (for up to 1 separation disc, i.e. 2 lines) or 2 (for the D spool) makes sense imho
Sep_disc_th = 1.0;
Spool_pitch                      = (Spool_teeth*Circular_pitch/360);
Spool_pitch_diametrial           = Spool_teeth/(2*Spool_pitch);
Spool_outer_radius               = Spool_pitch + 1/Spool_pitch_diametrial;
Torx_depth = 5;
Motor_bracket_depth = Gear_height+1+7+Nema17_ring_height+1+Gap_between_sandwich_and_plate;
Spool_core_flerp0 = 16+3;

/////// Lineroller parameters ////////////
b623_width  = 4;
b623_bore_r = 3/2;
b623_vgroove_big_r = 12/2;
b623_vgroove_small_r = 10/2;
Lineroller_wall_th = 2.3;
// The height that lineroller_ABC_winch will have if we include the bearing
Tower_h = Gap_between_sandwich_and_plate+Gear_height
         + Spool_height/2
         + b623_vgroove_small_r
         + b623_vgroove_big_r;
Bearing_wall = 1;
Depth_of_lineroller_tower = b623_width + 2*Wall_th; // 9
Depth_of_lineroller_base = Depth_of_lineroller_tower + 9; // 18
Ptfe_r = 2.1;
Lineroller_base_r = Depth_of_lineroller_base/2-1*(Ptfe_r+2);
Screw_h = 2;
Screw_head_h = 2;
Spool_center_bearing_wall_th = 5;
// main file
include <parameters.scad>
use <util.scad>
use <gear_util.scad>
use <gears.scad>

spool_spacer();
module spool_spacer(){
  difference(){
    cylinder(r = Spool_outer_radius-7, h = Sep_disc_th, $fn=100);
    translate([0,0,-1])
      cylinder(r= Spool_r, h = 3, $fn=100);
  }
  for(v=[0:60:359]) // to fit the grooves of the spool
    rotate([0,0,v])
      translate([0, Spool_r, 0])
      cylinder(r=1.5, h=1, $fn=20);
}
